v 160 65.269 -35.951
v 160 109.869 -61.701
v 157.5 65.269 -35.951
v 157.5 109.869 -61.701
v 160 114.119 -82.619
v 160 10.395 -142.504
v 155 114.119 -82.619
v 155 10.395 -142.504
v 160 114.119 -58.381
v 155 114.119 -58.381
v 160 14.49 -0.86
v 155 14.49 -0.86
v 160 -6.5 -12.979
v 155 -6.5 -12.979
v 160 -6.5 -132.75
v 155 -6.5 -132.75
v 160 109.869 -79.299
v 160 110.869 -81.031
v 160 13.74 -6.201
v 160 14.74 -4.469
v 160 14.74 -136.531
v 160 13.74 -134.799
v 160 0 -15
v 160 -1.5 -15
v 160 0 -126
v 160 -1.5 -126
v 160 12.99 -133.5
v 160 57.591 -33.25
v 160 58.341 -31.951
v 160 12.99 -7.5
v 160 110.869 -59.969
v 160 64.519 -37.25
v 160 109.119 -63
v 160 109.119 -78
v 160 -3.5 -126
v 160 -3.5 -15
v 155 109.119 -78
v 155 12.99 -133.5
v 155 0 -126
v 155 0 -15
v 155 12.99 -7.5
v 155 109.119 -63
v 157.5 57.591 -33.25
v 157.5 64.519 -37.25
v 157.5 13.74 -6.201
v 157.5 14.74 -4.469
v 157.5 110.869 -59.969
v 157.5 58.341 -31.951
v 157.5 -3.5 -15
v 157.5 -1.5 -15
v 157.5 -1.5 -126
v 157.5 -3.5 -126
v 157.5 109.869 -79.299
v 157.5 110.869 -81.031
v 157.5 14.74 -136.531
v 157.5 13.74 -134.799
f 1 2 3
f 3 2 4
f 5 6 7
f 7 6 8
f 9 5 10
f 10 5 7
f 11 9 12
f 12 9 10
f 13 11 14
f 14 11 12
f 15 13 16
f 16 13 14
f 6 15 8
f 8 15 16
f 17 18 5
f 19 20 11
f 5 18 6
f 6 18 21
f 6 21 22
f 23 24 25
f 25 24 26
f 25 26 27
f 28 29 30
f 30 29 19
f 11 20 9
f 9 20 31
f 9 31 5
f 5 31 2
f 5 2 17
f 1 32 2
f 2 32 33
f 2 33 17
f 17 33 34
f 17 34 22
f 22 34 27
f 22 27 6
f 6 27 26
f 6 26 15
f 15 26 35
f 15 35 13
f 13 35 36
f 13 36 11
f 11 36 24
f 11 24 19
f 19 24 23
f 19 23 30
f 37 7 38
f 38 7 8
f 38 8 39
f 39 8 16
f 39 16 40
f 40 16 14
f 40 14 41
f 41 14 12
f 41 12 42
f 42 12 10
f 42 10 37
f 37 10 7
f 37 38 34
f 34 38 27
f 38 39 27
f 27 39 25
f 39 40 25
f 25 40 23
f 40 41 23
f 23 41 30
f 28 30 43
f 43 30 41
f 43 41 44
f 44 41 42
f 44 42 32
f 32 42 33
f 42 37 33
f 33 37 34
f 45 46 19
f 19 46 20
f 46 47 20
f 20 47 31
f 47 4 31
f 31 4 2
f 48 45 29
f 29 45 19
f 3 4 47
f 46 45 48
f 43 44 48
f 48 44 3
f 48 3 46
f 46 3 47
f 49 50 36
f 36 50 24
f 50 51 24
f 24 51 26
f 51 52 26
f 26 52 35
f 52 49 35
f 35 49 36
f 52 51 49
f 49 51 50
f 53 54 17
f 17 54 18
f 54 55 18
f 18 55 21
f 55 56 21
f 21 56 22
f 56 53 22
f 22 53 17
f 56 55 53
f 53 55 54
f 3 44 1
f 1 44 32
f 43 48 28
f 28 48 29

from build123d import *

# Parameters (mm, degrees)
BOSS_EXTRUDE1_DEPTH = 155
SKETCH4_W           = 144
SKETCH4_H           = 111
CUT_EXTRUDE1_DEPTH  = 5
SKETCH5_R           = 38.5
CUT_EXTRUDE2_DEPTH  = 10
BOSS_EXTRUDE2_DEPTH = 5
CUT_EXTRUDE3_DEPTH  = 5
SKETCH8_W           = 111
SKETCH8_H           = 2
CUT_EXTRUDE4_DEPTH  = 2.5
CUT_EXTRUDE5_DEPTH  = 2.5


with BuildPart() as part:
    # Sketch3 → Boss-Extrude1 (new body)
    with BuildSketch(Plane(origin=(0, 0, 0), x_dir=(0, 0, -1), z_dir=(1, 0, 0))):
        Polygon((58.381197846, 114.119200877), (0.860471904, 14.490381057), (12.979274058, -6.5), (132.75, -6.5), (142.504165125, 10.394709581), (82.618802154, 114.119200877), align=None)
        Polygon((7.5, 12.990381057), (15, 0), (15, -1.5), (126, -1.5), (126, 0), (133.5, 12.990381057), (134.799038106, 13.740381057), (79.299038106, 109.869200877), (78, 109.119200877), (63, 109.119200877), (61.700961894, 109.869200877), (6.200961894, 13.740381057), align=None, mode=Mode.SUBTRACT)
    extrude(amount=BOSS_EXTRUDE1_DEPTH)

    # Sketch4 → Cut-Extrude1 (cut)
    with BuildSketch(Plane(origin=(0, 3.25, 5.629165125), x_dir=(1, 0, 0), z_dir=(0, 0.4999999999999995, 0.8660254037844389))):
        with Locations((77.5, 70.5)):
            Rectangle(SKETCH4_W, SKETCH4_H)
    extrude(amount=-CUT_EXTRUDE1_DEPTH, mode=Mode.SUBTRACT)

    # Sketch5 → Cut-Extrude2 (cut)
    with BuildSketch(Plane(origin=(0, 64.304790967, -111.379165125), x_dir=(-1, 0, 0), z_dir=(0, 0.5000000000000006, -0.8660254037844385))):
        with Locations(Location((-77.5, -2.364637029, 0), (0, 0, 90))):
            Circle(SKETCH5_R)
    extrude(amount=-CUT_EXTRUDE2_DEPTH, mode=Mode.SUBTRACT)


with BuildPart() as body_2:
    # Sketch6 → Boss-Extrude2 (new body)
    with BuildSketch(Plane(origin=(155, 0, 0), x_dir=(0, 0, -1), z_dir=(1, 0, 0))):
        Polygon((82.618802154, 114.119200877), (58.381197846, 114.119200877), (0.860471904, 14.490381057), (12.979274058, -6.5), (132.75, -6.5), (142.504165125, 10.394709581), align=None)
    extrude(amount=BOSS_EXTRUDE2_DEPTH)

    # Sketch7 → Cut-Extrude3 (cut)
    with BuildSketch(Plane(origin=(160, 0, 0), x_dir=(0, 0, -1), z_dir=(1, 0, 0))):
        Polygon((63, 109.119200877), (7.5, 12.990381057), (15, 0), (126, 0), (133.5, 12.990381057), (78, 109.119200877), align=None)
    extrude(amount=-CUT_EXTRUDE3_DEPTH, mode=Mode.SUBTRACT)

    # Sketch8 → Cut-Extrude4 (cut)
    with BuildSketch(Plane(origin=(160, 0, 0), x_dir=(0, 0, -1), z_dir=(1, 0, 0))):
        Polygon((6.200961894, 13.740381057), (61.700961894, 109.869200877), (59.968911087, 110.869200877), (4.468911087, 14.740381057), align=None)
        with Locations((70.5, -2.5)):
            Rectangle(SKETCH8_W, SKETCH8_H)
        Polygon((79.299038106, 109.869200877), (134.799038106, 13.740381057), (136.531088913, 14.740381057), (81.031088913, 110.869200877), align=None)
    extrude(amount=-CUT_EXTRUDE4_DEPTH, mode=Mode.SUBTRACT)

    # Sketch10 → Cut-Extrude5 (cut)
    with BuildSketch(Plane(origin=(160, 0, 0), x_dir=(0, 0, -1), z_dir=(1, 0, 0))):
        Polygon((37.25, 64.518892582), (33.25, 57.590689352), (31.950961894, 58.340689352), (35.950961894, 65.268892582), align=None)
    extrude(amount=-CUT_EXTRUDE5_DEPTH, mode=Mode.SUBTRACT)


solid = body_2.part
